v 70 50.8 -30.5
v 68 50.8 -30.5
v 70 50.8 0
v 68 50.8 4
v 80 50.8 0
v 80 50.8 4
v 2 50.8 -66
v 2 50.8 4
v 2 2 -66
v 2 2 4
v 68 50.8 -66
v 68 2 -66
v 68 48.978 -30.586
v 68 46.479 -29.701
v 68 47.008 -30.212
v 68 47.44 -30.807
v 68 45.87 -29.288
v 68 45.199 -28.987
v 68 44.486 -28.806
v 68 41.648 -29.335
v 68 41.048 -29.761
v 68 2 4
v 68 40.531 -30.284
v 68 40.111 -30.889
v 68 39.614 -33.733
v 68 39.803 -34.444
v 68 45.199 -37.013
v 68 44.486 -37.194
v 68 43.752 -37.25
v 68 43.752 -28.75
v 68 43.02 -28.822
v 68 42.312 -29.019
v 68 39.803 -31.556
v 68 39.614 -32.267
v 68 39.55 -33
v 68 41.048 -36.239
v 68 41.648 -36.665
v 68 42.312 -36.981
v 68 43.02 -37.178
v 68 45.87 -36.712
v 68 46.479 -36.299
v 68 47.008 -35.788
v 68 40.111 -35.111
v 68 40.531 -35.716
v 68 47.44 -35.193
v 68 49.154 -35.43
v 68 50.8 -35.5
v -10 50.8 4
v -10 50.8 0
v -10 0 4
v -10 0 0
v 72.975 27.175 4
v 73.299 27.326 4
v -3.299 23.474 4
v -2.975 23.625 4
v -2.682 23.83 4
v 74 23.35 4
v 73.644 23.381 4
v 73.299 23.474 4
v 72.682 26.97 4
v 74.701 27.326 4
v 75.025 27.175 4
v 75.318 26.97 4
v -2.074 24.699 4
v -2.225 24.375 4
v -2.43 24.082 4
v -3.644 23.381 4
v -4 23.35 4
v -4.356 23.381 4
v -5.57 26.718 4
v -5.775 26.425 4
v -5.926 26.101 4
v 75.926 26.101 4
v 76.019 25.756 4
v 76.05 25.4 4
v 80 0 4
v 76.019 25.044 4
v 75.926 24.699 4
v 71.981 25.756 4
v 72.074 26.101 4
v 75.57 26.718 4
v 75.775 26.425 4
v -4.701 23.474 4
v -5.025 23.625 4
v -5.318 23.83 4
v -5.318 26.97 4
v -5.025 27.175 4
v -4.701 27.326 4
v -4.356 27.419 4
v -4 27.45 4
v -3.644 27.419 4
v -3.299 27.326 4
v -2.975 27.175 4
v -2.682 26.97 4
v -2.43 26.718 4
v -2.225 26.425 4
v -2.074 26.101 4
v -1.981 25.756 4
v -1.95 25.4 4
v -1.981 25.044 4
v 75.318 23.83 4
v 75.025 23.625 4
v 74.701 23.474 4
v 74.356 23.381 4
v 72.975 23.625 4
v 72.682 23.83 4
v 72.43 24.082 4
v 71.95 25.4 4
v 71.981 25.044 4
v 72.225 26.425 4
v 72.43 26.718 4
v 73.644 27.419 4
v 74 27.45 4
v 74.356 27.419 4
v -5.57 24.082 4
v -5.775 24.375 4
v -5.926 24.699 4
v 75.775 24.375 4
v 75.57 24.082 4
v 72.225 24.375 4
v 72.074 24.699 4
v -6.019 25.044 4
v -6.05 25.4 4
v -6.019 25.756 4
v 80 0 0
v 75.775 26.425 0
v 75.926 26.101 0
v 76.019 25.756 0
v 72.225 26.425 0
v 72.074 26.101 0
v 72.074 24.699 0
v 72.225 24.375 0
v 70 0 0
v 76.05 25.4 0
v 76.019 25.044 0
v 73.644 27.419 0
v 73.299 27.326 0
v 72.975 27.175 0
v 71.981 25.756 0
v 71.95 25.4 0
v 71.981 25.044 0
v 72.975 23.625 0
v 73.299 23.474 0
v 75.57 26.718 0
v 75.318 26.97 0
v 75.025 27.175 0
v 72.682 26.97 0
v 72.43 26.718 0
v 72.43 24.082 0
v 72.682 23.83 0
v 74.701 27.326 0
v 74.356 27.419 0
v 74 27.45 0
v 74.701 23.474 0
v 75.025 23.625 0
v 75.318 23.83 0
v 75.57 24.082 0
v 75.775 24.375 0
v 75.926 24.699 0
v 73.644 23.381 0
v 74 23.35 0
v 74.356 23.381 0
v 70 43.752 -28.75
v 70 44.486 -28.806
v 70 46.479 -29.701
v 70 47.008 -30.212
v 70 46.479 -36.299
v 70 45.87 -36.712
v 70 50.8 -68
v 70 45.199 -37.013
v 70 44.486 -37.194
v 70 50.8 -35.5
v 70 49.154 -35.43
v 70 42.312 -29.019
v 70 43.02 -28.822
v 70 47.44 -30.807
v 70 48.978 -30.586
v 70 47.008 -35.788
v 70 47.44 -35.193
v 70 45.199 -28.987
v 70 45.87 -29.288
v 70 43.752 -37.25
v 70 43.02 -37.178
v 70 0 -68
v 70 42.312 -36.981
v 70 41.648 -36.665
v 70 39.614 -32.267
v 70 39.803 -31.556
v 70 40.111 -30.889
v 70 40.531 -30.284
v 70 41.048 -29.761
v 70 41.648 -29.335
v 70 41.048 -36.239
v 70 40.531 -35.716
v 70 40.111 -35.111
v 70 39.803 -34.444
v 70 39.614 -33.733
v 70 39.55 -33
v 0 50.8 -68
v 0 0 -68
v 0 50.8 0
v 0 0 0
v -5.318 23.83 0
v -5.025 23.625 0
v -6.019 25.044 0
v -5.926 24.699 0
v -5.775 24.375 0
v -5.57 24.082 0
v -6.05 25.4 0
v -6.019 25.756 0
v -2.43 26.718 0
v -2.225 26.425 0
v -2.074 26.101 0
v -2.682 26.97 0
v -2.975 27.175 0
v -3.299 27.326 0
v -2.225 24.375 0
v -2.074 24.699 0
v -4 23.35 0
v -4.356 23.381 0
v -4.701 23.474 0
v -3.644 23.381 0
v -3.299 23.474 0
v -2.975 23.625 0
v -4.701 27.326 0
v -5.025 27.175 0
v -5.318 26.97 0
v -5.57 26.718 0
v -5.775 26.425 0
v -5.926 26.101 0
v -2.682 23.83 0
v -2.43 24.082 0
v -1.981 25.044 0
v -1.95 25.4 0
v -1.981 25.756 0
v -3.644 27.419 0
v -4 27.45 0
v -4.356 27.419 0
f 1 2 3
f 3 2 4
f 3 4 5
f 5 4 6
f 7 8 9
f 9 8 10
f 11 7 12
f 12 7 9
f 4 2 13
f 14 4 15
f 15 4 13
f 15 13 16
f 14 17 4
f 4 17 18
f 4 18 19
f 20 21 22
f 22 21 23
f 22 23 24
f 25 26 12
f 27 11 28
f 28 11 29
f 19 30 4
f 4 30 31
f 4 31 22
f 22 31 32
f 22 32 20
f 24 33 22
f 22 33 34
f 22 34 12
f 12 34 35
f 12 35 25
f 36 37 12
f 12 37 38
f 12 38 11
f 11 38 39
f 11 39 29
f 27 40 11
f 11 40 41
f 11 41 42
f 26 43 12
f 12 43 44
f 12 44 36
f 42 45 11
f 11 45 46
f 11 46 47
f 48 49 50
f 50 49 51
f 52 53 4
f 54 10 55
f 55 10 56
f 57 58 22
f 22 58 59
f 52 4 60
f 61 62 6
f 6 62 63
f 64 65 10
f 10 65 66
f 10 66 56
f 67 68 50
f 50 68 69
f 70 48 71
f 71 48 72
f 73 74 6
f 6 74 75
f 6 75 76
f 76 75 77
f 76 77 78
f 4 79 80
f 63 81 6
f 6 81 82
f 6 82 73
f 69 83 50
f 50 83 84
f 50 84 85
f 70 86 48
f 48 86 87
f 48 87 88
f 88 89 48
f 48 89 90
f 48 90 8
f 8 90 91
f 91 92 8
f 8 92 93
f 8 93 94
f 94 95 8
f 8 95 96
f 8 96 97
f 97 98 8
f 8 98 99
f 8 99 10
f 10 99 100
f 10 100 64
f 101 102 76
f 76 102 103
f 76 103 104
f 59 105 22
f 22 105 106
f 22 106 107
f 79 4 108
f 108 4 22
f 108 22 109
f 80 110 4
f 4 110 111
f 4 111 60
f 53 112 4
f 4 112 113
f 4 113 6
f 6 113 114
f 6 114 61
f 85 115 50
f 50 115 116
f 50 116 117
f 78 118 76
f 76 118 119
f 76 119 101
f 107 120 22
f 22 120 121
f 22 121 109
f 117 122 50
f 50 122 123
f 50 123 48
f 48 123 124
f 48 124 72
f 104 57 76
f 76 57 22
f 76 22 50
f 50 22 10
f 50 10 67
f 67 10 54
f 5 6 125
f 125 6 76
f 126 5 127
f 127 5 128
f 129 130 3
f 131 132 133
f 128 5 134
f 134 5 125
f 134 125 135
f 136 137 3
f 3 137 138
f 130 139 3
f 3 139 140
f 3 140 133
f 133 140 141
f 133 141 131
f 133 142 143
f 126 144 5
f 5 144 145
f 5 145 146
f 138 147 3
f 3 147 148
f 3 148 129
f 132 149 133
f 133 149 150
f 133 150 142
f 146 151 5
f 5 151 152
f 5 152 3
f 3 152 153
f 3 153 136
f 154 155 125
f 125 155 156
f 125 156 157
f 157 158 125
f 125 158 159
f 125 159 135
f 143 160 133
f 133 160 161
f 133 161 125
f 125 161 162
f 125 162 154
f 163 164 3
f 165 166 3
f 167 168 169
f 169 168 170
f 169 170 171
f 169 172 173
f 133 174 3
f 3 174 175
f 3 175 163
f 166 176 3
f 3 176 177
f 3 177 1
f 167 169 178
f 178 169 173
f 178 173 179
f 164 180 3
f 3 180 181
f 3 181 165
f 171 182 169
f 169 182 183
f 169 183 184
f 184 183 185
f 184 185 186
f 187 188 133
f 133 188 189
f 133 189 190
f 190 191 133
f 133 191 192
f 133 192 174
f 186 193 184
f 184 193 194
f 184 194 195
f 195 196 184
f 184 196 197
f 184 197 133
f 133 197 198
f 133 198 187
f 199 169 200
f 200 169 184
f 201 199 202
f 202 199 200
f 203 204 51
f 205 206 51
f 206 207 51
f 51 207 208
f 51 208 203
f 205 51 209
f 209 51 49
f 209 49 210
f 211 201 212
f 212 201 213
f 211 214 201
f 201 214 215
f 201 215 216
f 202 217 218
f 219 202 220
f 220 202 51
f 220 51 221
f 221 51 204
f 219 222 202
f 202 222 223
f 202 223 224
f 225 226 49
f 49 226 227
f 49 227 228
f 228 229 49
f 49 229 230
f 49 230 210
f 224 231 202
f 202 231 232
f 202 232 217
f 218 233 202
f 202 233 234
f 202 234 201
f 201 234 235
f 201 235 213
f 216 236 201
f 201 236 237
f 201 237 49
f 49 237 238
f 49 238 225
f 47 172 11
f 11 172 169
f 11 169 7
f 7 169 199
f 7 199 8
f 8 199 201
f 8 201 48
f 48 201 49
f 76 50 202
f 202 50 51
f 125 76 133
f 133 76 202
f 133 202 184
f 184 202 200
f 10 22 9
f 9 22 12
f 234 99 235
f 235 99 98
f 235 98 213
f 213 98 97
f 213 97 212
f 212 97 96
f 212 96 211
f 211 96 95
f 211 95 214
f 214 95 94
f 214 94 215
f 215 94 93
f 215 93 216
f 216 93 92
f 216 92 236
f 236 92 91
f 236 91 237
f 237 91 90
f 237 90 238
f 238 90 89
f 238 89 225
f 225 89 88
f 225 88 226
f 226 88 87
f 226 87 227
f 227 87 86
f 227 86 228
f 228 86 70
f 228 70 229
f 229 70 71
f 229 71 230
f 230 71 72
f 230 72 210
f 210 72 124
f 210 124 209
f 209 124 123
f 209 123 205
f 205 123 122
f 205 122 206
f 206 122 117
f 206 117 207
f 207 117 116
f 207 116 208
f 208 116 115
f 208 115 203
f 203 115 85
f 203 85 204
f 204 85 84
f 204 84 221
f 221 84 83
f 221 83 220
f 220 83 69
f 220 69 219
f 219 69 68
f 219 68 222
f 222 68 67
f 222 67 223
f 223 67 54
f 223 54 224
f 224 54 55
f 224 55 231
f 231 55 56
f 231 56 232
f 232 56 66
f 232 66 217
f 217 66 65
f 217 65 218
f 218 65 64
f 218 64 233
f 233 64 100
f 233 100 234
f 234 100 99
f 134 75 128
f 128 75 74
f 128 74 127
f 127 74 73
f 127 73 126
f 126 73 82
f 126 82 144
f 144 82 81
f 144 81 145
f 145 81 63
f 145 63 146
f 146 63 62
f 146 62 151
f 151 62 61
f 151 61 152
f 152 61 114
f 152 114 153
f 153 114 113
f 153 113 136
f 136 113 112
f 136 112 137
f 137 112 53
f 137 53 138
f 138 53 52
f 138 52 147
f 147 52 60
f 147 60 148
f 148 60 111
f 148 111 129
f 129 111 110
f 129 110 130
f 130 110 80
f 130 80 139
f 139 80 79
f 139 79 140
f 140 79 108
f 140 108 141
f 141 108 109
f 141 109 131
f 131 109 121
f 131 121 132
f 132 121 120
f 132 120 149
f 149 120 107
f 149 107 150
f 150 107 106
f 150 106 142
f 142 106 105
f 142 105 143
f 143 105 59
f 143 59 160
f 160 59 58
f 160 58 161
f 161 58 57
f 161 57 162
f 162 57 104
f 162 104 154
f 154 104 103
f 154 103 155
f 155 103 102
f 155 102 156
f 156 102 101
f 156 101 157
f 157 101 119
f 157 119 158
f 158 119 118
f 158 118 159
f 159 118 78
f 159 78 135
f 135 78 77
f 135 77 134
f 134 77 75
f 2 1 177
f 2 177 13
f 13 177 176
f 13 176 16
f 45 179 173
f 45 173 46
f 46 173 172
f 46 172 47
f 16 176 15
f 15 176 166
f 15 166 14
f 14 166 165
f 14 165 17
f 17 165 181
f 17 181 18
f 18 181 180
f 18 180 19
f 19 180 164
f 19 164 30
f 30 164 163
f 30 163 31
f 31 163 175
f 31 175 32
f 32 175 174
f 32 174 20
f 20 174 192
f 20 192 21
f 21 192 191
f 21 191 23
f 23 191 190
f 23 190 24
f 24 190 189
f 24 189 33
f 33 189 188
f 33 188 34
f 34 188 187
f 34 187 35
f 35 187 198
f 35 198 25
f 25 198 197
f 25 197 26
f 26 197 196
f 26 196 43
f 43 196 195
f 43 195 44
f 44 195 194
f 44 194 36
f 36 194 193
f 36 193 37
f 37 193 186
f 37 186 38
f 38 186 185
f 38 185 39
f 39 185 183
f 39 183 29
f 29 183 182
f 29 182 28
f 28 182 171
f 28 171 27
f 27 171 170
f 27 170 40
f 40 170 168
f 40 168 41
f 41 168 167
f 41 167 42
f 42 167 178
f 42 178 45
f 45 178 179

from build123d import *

# Parameters (mm, degrees)
BOSS_EXTRUDE1_DEPTH             = 50.8
BOTTOMCOVERSKETCH3_W            = 66
BOTTOMCOVERSKETCH3_H            = 2
BOTTOMCOVERBOSS_EXTRUDE2_DEPTH  = 70
MOUNTINGHOLESSKETCH4_R          = 2.05
MOUNTINGHOLESCUT_EXTRUDE2_DEPTH = 4
CABLEHOLECUT_EXTRUDE1_REACH     = 118.639


with BuildPart() as part:
    # Sketch1 → Boss-Extrude1 (new body)
    with BuildSketch(Plane(origin=(0, 0, 0), x_dir=(1, 0, 0), z_dir=(0, 1, 0))):
        Polygon((-10, 0), (0, 0), (0, 68), (70, 68), (70, 0), (80, 0), (80, -4), (68, -4), (68, 66), (2, 66), (2, -4), (-10, -4), align=None)
    extrude(amount=BOSS_EXTRUDE1_DEPTH)

    # BottomCoverSketch3 → BottomCoverBoss-Extrude2 (add)
    with BuildSketch(Plane.XY.offset(-66)):
        with Locations((35, 1)):
            Rectangle(BOTTOMCOVERSKETCH3_W, BOTTOMCOVERSKETCH3_H)
    extrude(amount=BOTTOMCOVERBOSS_EXTRUDE2_DEPTH)

    # MountingHolesSketch4 → MountingHolesCut-Extrude2 (cut)
    with BuildSketch(Plane.XY.offset(4)):
        with Locations((74, 25.4)):
            Circle(MOUNTINGHOLESSKETCH4_R)
        with Locations((-4, 25.4)):
            Circle(MOUNTINGHOLESSKETCH4_R)
    extrude(amount=-MOUNTINGHOLESCUT_EXTRUDE2_DEPTH, mode=Mode.SUBTRACT)

    # CableHoleSketch2 → CableHoleCut-Extrude1 (cut, up to next)
    with BuildSketch(Plane(origin=(70, 0, 0), x_dir=(0, 0, -1), z_dir=(1, 0, 0)), mode=Mode.PRIVATE) as cableholecut_extrude1_sk1:
        with BuildLine():
            Line((30.5, 50.8), (35.5, 50.8))
            add(Edge.make_bspline(
                [(35.193240855, 47.440356377), (35.5, 49.010381841), (35.5, 50.8)],
                knots=[1.070199647, 1.070199647, 1.070199647, 1.570796327, 1.570796327, 1.570796327], degree=2, weights=[1, 0.968838568, 1]))
            ThreePointArc((35.193240855, 47.440356377), (33, 39.55), (30.806759145, 47.440356377))
            add(Edge.make_bspline(
                [(30.5, 50.8), (30.5, 49.010381841), (30.806759145, 47.440356377)],
                knots=[4.71238898, 4.71238898, 4.71238898, 5.21298566, 5.21298566, 5.21298566], degree=2, weights=[1, 0.968838568, 1]))
        make_face()
    cableholecut_extrude1_tool1 = extrude(cableholecut_extrude1_sk1.sketch, amount=-CABLEHOLECUT_EXTRUDE1_REACH, mode=Mode.PRIVATE) & part.part
    add(cableholecut_extrude1_tool1.solids().sort_by_distance((70, 44.916526, -33))[0], mode=Mode.SUBTRACT)


solid = part.part
